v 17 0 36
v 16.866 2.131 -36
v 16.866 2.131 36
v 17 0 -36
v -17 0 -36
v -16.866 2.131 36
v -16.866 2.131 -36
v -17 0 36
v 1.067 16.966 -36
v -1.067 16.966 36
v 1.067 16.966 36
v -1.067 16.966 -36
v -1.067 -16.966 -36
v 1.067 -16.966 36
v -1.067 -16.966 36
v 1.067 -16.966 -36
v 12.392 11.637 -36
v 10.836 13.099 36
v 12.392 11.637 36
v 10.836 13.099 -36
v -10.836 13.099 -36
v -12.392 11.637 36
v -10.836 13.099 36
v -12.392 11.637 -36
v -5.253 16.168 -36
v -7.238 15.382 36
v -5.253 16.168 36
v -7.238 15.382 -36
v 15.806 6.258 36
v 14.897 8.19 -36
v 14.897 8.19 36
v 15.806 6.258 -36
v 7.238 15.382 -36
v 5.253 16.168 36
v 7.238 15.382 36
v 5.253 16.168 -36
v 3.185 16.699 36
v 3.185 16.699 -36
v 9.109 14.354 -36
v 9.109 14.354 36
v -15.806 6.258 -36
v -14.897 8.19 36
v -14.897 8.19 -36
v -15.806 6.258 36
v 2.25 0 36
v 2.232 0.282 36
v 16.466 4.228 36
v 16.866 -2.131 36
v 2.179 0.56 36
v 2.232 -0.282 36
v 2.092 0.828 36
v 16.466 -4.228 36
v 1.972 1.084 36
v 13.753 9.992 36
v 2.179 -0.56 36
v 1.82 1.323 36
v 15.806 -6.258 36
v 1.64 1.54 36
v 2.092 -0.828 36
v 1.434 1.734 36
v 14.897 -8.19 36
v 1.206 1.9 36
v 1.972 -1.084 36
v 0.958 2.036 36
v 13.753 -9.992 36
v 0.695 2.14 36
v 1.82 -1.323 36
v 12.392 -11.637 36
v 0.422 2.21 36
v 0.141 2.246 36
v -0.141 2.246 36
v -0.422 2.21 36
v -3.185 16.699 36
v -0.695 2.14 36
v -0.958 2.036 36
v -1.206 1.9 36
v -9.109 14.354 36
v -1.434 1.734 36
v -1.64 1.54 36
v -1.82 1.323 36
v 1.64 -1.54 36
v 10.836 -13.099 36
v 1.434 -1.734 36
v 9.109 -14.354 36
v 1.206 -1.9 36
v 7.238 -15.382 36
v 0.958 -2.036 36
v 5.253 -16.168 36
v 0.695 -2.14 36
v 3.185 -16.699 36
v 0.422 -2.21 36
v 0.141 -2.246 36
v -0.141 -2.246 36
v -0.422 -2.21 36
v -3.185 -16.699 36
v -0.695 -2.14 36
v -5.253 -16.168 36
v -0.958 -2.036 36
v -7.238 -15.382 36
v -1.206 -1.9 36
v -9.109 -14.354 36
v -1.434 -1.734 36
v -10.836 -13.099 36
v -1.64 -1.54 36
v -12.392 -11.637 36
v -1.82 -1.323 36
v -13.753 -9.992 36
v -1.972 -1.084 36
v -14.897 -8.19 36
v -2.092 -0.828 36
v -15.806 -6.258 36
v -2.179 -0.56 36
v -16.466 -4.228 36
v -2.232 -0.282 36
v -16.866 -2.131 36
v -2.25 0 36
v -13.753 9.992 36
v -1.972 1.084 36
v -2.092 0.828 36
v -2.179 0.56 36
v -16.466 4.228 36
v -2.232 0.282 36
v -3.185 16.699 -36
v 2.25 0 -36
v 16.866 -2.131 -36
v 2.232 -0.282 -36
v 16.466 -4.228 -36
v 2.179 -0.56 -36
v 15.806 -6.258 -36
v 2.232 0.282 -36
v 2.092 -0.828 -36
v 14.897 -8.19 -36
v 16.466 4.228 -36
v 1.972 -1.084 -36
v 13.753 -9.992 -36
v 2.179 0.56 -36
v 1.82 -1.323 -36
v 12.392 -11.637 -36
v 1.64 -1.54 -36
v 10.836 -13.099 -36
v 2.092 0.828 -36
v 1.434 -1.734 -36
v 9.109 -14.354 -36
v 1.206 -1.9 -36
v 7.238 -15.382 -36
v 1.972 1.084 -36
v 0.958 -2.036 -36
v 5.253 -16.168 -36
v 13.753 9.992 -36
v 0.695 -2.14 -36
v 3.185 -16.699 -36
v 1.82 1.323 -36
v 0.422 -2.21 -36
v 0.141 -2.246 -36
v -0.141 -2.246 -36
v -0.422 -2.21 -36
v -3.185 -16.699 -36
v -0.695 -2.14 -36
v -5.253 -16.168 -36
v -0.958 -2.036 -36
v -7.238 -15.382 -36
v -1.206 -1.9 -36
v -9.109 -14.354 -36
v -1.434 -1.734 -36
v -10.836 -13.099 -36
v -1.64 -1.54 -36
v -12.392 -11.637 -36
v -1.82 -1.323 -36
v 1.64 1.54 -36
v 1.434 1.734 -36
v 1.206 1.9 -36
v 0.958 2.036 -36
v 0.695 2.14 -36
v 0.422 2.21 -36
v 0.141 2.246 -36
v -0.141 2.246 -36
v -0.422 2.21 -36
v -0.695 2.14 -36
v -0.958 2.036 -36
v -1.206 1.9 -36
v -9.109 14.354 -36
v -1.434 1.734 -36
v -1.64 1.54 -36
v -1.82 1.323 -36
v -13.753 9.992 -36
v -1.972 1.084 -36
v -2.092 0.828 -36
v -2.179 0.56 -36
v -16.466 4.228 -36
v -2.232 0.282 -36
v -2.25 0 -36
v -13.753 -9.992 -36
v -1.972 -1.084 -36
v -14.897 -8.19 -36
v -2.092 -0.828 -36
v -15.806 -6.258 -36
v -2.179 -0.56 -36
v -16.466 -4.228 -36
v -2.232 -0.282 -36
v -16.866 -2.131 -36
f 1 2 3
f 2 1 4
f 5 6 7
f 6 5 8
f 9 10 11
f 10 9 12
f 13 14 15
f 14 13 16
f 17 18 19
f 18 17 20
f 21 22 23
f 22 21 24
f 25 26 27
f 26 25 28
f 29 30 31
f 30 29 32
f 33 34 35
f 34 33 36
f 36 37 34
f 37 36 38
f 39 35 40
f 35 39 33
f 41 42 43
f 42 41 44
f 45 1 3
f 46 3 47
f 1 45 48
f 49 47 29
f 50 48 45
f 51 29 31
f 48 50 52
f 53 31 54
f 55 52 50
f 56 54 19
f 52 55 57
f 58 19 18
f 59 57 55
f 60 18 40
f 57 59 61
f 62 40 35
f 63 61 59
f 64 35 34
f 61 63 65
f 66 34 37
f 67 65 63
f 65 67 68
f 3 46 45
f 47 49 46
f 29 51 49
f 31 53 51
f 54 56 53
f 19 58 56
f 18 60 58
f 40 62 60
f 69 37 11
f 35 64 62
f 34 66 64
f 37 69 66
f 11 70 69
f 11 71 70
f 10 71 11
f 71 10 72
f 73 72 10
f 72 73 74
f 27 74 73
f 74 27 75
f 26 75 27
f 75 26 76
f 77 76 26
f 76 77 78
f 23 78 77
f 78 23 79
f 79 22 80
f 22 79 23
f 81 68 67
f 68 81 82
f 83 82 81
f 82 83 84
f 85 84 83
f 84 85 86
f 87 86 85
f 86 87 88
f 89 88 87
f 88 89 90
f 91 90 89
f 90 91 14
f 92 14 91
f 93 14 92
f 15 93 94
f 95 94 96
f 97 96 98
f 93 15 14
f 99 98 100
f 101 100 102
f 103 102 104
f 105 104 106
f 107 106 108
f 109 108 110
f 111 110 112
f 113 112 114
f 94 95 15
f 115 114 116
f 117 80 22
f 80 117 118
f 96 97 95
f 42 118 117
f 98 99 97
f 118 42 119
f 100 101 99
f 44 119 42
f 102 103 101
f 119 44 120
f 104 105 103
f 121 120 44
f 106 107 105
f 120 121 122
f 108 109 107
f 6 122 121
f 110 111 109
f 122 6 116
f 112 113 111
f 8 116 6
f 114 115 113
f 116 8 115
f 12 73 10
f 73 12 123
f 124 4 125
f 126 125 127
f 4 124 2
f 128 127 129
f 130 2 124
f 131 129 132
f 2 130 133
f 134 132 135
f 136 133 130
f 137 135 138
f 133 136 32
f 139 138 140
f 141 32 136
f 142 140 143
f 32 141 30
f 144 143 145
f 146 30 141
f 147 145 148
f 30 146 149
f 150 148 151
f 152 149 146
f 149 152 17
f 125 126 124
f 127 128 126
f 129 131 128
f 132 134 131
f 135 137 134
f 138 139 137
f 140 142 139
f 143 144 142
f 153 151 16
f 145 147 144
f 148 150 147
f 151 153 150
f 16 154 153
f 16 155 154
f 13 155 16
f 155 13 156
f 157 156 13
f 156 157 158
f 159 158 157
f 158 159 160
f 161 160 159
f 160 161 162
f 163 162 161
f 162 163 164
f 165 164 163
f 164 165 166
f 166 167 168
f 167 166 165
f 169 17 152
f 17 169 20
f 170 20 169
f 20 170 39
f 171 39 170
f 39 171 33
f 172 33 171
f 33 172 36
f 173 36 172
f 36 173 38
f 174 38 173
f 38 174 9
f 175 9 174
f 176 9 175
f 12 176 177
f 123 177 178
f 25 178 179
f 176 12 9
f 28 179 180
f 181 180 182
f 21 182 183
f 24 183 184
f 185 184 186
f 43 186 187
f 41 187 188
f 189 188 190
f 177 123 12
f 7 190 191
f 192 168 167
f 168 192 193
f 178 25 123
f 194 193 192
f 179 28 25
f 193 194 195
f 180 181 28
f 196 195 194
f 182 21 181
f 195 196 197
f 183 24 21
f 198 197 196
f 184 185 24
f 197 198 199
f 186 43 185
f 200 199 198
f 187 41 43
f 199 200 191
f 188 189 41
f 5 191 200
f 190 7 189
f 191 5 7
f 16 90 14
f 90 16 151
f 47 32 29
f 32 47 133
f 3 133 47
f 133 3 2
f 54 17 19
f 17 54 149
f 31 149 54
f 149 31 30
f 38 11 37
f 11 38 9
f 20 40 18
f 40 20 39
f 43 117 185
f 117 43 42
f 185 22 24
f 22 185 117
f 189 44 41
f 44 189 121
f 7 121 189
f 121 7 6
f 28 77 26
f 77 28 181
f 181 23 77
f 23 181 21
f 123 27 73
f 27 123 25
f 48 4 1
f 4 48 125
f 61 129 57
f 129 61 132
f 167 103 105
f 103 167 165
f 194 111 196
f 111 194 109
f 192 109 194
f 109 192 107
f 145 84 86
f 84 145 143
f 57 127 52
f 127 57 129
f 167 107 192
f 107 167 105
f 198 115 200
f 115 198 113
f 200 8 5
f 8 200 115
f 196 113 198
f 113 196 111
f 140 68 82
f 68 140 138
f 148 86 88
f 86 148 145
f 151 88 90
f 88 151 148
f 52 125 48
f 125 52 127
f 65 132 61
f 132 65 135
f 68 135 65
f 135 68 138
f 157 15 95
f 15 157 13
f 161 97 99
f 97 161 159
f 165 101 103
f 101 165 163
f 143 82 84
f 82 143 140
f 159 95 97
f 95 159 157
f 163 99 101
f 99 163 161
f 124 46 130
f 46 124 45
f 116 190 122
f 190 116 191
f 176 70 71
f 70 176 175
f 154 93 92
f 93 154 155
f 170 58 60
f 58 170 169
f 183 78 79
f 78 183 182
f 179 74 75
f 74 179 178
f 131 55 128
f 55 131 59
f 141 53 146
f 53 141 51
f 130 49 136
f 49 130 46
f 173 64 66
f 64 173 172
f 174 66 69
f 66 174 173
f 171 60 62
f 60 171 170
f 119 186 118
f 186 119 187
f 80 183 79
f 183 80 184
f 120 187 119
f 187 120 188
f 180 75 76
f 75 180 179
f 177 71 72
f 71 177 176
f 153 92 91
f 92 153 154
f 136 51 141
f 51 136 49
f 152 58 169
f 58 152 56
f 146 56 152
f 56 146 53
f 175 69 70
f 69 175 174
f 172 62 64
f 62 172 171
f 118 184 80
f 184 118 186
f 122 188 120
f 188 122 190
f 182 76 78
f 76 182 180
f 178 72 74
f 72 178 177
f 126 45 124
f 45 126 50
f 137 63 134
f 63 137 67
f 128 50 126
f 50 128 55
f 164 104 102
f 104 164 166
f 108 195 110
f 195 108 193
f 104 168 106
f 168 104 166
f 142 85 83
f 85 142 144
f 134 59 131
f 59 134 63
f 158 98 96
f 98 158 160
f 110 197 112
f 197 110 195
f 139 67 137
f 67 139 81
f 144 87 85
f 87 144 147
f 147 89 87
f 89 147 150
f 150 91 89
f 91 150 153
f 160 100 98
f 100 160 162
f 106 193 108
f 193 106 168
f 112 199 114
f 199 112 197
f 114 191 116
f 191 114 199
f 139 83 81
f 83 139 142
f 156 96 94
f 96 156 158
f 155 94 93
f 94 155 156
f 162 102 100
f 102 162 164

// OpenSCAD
$fn = 50;


difference() {
	union() {
		translate(v = [0, 0, -36.0000000000]) {
			cylinder(h = 72, r = 17.0000000000);
		}
	}
	union() {
		translate(v = [0, 0, -100.0000000000]) {
			cylinder(h = 200, r = 2.2500000000);
		}
	}
}
